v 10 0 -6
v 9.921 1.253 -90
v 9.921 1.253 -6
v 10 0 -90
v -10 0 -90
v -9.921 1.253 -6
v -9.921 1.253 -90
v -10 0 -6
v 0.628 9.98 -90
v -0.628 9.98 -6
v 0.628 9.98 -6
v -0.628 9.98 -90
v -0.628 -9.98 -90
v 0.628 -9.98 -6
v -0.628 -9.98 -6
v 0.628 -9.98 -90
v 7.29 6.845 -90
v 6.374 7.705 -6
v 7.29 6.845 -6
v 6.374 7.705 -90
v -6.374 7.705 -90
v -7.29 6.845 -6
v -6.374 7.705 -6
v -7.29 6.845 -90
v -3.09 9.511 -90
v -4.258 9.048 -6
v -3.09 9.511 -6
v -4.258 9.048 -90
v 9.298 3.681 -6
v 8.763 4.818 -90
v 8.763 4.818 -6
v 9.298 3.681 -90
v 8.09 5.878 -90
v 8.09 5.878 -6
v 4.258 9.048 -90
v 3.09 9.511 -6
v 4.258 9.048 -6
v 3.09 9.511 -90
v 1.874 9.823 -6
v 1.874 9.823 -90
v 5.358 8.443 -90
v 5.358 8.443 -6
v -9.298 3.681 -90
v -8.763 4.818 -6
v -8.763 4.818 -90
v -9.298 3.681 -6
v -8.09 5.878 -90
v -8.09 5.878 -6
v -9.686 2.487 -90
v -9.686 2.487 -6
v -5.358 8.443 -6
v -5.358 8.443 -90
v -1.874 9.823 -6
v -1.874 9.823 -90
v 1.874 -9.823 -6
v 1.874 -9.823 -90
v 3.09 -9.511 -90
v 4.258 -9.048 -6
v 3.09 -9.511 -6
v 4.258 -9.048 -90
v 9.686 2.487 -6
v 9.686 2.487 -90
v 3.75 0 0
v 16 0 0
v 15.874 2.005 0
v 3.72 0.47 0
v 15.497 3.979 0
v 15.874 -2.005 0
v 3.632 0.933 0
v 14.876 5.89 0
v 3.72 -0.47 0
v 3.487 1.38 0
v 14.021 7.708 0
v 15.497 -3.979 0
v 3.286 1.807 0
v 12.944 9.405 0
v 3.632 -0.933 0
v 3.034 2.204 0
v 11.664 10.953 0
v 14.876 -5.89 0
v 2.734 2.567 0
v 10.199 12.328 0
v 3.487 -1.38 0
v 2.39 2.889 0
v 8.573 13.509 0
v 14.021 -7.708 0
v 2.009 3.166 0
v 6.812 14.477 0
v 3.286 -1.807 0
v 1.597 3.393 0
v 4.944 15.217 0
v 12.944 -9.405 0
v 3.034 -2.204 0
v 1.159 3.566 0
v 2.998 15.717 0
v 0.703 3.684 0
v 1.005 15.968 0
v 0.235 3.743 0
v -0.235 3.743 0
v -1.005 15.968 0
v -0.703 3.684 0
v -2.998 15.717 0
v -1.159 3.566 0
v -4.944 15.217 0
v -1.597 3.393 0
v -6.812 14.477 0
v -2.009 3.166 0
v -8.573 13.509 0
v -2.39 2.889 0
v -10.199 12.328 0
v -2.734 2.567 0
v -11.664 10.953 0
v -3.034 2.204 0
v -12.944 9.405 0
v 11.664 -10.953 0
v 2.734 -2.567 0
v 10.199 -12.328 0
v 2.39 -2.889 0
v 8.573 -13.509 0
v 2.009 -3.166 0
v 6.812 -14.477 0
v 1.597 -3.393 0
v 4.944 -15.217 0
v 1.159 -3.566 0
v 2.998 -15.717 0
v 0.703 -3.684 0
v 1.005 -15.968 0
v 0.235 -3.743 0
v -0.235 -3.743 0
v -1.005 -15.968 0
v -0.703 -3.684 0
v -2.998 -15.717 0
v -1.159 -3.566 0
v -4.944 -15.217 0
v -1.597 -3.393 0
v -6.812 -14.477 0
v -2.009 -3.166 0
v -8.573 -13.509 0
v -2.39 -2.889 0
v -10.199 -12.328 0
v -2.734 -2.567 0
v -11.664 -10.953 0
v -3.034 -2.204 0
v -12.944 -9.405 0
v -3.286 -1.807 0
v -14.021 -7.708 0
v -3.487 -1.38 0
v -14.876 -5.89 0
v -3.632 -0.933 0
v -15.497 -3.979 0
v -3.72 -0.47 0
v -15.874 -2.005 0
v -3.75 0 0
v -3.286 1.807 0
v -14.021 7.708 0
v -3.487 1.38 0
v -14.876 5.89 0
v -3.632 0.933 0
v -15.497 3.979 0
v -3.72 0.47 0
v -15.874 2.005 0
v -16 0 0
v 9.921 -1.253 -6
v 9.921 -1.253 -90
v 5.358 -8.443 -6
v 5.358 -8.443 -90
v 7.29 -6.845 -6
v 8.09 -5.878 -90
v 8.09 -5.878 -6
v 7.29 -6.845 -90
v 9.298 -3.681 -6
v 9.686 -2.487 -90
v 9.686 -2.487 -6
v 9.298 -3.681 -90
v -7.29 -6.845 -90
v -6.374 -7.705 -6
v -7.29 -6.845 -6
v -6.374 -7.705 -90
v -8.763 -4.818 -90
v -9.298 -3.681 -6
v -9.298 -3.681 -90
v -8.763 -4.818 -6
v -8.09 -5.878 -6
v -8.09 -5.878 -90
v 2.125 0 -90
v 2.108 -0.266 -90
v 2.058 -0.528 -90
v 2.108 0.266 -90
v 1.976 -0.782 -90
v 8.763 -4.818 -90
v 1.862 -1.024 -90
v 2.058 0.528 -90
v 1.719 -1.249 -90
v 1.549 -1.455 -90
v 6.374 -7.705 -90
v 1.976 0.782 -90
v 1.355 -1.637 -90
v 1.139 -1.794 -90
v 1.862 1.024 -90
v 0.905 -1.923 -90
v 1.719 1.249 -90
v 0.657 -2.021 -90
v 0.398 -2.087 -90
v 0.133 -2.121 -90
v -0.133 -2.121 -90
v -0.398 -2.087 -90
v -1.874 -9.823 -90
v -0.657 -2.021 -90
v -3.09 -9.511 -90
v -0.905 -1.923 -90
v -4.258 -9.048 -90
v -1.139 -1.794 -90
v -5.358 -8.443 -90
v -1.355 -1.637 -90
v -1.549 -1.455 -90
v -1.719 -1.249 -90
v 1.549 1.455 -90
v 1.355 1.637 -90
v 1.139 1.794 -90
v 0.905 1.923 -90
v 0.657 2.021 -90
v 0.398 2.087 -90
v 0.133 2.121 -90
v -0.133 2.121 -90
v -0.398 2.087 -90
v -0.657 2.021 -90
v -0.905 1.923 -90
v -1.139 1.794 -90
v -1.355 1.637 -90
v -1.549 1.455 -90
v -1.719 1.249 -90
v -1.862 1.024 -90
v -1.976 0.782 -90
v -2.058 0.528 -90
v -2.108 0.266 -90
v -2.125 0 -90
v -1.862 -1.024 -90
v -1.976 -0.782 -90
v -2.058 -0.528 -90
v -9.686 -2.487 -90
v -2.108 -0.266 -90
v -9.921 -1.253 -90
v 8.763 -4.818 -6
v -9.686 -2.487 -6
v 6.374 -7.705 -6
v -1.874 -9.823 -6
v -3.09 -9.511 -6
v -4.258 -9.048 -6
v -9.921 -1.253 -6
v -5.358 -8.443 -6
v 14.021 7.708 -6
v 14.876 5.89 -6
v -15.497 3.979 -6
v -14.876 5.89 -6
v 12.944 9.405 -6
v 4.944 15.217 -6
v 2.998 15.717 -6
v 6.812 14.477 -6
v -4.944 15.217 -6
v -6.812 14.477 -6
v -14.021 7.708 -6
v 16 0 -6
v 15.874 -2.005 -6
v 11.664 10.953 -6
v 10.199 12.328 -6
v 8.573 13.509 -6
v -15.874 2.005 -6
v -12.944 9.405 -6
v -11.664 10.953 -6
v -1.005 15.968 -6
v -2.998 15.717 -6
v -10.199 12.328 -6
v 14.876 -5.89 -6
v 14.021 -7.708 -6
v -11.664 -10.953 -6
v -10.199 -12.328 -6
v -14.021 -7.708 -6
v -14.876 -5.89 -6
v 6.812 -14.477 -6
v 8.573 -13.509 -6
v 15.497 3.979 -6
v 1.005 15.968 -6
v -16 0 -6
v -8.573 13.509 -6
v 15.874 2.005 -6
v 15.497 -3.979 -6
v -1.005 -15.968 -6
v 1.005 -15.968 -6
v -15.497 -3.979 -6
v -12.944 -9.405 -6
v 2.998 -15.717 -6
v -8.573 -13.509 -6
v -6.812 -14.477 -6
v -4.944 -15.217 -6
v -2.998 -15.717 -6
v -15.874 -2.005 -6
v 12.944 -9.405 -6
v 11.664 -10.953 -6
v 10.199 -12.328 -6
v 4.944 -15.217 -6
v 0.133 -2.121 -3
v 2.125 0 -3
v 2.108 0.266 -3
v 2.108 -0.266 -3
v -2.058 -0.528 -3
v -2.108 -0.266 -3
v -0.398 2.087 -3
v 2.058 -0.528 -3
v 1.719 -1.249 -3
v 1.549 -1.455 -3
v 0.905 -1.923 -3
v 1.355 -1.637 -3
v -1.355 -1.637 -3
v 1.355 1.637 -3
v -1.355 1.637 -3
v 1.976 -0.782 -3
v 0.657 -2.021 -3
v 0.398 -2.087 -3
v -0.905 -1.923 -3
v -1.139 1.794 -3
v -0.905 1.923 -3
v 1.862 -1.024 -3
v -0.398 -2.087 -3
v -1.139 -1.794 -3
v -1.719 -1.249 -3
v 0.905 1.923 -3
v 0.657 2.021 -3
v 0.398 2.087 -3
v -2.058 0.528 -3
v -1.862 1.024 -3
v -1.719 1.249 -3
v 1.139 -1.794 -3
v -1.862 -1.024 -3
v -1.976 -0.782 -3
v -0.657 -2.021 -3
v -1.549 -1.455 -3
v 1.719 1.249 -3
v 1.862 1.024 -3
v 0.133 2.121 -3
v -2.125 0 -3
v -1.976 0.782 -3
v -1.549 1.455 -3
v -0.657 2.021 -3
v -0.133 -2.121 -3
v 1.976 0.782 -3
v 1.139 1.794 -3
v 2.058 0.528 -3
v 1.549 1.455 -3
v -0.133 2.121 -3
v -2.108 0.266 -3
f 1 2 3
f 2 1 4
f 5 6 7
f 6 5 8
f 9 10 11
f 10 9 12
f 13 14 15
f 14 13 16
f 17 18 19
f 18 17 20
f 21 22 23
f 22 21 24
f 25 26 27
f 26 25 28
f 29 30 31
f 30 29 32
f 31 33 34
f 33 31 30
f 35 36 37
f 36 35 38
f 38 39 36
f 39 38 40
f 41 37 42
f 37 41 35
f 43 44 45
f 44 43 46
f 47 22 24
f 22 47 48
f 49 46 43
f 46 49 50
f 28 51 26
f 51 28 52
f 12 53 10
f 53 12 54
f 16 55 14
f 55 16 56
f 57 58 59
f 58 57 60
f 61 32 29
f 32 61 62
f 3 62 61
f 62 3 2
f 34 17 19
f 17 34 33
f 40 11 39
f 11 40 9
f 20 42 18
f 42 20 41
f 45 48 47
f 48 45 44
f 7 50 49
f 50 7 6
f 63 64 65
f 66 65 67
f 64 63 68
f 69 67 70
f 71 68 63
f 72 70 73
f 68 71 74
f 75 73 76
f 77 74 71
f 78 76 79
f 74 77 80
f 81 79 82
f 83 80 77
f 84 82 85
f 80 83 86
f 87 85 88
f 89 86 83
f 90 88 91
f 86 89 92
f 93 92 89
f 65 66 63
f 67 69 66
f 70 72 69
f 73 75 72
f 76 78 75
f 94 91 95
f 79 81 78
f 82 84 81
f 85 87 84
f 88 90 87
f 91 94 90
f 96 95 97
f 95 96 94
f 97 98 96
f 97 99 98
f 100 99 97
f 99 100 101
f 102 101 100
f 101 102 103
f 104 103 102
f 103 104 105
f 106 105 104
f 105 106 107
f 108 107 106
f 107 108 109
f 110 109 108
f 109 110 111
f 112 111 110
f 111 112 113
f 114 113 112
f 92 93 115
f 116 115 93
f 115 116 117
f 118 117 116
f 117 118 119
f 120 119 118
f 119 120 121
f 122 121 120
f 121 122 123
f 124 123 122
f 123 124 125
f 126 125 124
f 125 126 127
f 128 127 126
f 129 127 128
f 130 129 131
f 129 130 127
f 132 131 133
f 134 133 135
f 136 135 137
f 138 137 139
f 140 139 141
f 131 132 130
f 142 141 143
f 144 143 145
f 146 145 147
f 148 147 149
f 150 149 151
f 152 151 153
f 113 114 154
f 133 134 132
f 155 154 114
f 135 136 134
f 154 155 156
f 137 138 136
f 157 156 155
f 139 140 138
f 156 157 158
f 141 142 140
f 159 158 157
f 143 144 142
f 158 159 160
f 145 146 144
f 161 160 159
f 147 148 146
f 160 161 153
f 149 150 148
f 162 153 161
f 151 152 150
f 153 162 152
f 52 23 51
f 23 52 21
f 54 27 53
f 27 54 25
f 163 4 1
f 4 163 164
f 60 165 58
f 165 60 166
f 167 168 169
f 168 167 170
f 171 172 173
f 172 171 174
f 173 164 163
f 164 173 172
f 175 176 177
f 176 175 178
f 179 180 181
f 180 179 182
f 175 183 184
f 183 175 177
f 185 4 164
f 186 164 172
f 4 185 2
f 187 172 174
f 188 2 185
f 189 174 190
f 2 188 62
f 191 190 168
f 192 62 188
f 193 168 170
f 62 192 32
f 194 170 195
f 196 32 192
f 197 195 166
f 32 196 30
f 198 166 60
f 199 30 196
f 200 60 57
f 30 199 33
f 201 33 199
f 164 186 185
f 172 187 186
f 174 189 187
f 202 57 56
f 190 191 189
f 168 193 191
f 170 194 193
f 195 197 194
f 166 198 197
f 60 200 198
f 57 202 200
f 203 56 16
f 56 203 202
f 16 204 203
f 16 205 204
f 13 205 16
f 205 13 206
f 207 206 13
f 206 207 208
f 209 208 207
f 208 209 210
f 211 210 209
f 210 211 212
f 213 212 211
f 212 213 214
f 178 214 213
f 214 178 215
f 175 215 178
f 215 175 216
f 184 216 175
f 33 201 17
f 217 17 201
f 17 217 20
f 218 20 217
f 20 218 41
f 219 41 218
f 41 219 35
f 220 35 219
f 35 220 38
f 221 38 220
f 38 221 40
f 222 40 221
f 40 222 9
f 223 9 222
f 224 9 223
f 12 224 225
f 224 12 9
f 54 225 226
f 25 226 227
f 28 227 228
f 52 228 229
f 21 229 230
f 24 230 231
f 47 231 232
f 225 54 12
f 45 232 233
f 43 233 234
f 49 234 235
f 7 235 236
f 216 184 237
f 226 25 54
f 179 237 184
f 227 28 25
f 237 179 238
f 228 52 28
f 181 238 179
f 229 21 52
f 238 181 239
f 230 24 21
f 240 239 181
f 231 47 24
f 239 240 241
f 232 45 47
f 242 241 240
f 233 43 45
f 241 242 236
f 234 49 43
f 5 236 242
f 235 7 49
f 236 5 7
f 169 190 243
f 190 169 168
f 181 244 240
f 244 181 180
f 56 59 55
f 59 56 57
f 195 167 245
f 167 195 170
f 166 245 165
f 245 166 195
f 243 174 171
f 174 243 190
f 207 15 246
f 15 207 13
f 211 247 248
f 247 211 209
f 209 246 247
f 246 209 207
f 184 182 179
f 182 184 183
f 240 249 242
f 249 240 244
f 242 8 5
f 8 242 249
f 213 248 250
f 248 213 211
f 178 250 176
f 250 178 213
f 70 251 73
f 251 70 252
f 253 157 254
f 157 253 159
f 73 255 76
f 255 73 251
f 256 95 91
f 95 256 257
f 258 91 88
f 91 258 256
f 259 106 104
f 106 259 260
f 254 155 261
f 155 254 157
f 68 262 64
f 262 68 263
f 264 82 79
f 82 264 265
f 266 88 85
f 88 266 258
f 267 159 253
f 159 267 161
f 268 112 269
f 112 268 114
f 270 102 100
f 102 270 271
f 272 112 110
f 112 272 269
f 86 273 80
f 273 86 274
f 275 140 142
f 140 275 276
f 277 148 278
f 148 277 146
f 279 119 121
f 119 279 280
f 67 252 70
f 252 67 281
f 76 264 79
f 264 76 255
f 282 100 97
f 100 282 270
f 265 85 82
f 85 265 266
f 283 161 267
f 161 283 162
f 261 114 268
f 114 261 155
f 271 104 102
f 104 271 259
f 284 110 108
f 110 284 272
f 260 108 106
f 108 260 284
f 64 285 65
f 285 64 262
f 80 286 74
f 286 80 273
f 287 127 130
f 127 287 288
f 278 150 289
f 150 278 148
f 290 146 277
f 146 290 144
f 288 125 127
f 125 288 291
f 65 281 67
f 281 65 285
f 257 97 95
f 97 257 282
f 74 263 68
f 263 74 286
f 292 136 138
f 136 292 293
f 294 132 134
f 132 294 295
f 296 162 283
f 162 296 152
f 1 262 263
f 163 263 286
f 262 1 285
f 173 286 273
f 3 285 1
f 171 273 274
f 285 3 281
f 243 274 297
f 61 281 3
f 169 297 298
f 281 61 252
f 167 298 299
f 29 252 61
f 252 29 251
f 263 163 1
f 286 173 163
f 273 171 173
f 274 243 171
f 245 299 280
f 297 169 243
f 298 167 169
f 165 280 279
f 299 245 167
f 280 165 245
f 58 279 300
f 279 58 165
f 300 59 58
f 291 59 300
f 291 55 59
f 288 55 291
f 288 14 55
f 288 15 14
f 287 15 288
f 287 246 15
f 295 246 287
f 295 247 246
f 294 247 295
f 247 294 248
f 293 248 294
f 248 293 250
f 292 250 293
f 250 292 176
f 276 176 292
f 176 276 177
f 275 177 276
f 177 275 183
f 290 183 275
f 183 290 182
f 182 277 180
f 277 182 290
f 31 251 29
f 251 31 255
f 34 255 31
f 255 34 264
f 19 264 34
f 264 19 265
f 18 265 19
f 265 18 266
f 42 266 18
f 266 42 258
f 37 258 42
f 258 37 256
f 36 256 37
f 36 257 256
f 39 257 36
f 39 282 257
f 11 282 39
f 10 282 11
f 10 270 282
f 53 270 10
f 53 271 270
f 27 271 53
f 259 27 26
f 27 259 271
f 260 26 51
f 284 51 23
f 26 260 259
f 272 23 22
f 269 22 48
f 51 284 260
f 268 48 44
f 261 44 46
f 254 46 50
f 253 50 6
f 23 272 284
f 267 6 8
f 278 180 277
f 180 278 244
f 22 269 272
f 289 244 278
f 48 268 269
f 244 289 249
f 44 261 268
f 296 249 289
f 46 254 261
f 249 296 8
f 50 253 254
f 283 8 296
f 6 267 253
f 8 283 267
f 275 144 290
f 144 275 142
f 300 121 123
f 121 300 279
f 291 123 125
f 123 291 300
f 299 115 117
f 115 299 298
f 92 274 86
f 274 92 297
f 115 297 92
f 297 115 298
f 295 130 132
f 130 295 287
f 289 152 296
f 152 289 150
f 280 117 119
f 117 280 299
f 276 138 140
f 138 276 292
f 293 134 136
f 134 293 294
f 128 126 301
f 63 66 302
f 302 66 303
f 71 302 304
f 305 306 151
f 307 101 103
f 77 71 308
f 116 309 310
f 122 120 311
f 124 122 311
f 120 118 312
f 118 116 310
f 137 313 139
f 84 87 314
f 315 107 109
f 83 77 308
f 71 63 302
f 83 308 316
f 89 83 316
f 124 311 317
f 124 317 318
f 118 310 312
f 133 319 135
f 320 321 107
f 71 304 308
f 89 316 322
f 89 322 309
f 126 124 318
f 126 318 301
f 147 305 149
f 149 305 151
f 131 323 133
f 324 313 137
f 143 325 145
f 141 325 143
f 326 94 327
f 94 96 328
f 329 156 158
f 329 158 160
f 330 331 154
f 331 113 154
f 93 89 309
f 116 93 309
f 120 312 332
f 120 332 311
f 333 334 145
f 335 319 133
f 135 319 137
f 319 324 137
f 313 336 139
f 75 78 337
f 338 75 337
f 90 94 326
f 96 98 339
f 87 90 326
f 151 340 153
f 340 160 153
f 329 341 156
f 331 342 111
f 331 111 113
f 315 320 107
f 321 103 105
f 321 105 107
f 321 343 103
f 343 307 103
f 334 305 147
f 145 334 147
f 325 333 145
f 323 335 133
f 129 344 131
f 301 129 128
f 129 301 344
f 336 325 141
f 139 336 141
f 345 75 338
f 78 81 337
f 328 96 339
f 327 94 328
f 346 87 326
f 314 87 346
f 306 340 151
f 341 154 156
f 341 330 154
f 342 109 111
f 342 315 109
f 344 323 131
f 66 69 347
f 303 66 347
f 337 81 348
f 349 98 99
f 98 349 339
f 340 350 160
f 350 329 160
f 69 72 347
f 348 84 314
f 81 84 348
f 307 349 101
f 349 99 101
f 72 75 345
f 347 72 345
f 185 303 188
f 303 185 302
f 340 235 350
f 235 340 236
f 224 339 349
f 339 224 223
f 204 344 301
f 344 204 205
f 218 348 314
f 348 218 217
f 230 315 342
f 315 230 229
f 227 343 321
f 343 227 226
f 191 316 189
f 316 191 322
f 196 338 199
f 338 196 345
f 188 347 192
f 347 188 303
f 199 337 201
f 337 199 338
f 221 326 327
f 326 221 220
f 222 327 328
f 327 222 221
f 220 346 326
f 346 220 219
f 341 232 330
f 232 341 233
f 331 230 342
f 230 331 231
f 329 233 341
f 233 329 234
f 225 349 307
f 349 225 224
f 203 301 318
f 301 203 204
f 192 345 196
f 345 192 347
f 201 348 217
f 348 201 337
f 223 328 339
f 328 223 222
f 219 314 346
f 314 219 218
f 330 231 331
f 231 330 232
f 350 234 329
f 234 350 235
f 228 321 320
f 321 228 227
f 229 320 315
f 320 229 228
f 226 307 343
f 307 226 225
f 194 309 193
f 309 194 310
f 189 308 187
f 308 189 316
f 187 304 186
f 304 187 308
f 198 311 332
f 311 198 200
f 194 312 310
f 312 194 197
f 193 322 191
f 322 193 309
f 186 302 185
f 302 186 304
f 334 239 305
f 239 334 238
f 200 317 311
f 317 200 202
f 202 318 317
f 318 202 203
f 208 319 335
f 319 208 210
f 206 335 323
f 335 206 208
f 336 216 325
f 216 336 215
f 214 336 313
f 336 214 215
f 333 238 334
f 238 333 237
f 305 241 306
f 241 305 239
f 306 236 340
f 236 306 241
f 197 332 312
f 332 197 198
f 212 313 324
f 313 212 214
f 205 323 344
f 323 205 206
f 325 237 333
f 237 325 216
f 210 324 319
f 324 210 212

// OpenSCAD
$fn = 50;


difference() {
	union() {
		translate(v = [0, 0, -90.0000000000]) {
			cylinder(h = 90, r = 10.0000000000);
		}
		translate(v = [0, 0, -6.0000000000]) {
			cylinder(h = 6, r = 16.0000000000);
		}
	}
	union() {
		translate(v = [0, 0, 0]) {
			rotate(a = [0, 0, 0]) {
				difference() {
					union() {
						#translate(v = [0, 0, -90.0000000000]) {
							cylinder(h = 90, r = 2.0000000000);
						}
						#translate(v = [0, 0, -3]) {
							cylinder(h = 3, r = 10.0000000000, r1 = 2.1250000000, r2 = 3.7500000000);
						}
						#translate(v = [0, 0, -90.0000000000]) {
							cylinder(h = 90, r = 2.1250000000);
						}
						#translate(v = [0, 0, -90.0000000000]) {
							cylinder(h = 90, r = 2.0000000000);
						}
					}
					union();
				}
			}
		}
	}
}
